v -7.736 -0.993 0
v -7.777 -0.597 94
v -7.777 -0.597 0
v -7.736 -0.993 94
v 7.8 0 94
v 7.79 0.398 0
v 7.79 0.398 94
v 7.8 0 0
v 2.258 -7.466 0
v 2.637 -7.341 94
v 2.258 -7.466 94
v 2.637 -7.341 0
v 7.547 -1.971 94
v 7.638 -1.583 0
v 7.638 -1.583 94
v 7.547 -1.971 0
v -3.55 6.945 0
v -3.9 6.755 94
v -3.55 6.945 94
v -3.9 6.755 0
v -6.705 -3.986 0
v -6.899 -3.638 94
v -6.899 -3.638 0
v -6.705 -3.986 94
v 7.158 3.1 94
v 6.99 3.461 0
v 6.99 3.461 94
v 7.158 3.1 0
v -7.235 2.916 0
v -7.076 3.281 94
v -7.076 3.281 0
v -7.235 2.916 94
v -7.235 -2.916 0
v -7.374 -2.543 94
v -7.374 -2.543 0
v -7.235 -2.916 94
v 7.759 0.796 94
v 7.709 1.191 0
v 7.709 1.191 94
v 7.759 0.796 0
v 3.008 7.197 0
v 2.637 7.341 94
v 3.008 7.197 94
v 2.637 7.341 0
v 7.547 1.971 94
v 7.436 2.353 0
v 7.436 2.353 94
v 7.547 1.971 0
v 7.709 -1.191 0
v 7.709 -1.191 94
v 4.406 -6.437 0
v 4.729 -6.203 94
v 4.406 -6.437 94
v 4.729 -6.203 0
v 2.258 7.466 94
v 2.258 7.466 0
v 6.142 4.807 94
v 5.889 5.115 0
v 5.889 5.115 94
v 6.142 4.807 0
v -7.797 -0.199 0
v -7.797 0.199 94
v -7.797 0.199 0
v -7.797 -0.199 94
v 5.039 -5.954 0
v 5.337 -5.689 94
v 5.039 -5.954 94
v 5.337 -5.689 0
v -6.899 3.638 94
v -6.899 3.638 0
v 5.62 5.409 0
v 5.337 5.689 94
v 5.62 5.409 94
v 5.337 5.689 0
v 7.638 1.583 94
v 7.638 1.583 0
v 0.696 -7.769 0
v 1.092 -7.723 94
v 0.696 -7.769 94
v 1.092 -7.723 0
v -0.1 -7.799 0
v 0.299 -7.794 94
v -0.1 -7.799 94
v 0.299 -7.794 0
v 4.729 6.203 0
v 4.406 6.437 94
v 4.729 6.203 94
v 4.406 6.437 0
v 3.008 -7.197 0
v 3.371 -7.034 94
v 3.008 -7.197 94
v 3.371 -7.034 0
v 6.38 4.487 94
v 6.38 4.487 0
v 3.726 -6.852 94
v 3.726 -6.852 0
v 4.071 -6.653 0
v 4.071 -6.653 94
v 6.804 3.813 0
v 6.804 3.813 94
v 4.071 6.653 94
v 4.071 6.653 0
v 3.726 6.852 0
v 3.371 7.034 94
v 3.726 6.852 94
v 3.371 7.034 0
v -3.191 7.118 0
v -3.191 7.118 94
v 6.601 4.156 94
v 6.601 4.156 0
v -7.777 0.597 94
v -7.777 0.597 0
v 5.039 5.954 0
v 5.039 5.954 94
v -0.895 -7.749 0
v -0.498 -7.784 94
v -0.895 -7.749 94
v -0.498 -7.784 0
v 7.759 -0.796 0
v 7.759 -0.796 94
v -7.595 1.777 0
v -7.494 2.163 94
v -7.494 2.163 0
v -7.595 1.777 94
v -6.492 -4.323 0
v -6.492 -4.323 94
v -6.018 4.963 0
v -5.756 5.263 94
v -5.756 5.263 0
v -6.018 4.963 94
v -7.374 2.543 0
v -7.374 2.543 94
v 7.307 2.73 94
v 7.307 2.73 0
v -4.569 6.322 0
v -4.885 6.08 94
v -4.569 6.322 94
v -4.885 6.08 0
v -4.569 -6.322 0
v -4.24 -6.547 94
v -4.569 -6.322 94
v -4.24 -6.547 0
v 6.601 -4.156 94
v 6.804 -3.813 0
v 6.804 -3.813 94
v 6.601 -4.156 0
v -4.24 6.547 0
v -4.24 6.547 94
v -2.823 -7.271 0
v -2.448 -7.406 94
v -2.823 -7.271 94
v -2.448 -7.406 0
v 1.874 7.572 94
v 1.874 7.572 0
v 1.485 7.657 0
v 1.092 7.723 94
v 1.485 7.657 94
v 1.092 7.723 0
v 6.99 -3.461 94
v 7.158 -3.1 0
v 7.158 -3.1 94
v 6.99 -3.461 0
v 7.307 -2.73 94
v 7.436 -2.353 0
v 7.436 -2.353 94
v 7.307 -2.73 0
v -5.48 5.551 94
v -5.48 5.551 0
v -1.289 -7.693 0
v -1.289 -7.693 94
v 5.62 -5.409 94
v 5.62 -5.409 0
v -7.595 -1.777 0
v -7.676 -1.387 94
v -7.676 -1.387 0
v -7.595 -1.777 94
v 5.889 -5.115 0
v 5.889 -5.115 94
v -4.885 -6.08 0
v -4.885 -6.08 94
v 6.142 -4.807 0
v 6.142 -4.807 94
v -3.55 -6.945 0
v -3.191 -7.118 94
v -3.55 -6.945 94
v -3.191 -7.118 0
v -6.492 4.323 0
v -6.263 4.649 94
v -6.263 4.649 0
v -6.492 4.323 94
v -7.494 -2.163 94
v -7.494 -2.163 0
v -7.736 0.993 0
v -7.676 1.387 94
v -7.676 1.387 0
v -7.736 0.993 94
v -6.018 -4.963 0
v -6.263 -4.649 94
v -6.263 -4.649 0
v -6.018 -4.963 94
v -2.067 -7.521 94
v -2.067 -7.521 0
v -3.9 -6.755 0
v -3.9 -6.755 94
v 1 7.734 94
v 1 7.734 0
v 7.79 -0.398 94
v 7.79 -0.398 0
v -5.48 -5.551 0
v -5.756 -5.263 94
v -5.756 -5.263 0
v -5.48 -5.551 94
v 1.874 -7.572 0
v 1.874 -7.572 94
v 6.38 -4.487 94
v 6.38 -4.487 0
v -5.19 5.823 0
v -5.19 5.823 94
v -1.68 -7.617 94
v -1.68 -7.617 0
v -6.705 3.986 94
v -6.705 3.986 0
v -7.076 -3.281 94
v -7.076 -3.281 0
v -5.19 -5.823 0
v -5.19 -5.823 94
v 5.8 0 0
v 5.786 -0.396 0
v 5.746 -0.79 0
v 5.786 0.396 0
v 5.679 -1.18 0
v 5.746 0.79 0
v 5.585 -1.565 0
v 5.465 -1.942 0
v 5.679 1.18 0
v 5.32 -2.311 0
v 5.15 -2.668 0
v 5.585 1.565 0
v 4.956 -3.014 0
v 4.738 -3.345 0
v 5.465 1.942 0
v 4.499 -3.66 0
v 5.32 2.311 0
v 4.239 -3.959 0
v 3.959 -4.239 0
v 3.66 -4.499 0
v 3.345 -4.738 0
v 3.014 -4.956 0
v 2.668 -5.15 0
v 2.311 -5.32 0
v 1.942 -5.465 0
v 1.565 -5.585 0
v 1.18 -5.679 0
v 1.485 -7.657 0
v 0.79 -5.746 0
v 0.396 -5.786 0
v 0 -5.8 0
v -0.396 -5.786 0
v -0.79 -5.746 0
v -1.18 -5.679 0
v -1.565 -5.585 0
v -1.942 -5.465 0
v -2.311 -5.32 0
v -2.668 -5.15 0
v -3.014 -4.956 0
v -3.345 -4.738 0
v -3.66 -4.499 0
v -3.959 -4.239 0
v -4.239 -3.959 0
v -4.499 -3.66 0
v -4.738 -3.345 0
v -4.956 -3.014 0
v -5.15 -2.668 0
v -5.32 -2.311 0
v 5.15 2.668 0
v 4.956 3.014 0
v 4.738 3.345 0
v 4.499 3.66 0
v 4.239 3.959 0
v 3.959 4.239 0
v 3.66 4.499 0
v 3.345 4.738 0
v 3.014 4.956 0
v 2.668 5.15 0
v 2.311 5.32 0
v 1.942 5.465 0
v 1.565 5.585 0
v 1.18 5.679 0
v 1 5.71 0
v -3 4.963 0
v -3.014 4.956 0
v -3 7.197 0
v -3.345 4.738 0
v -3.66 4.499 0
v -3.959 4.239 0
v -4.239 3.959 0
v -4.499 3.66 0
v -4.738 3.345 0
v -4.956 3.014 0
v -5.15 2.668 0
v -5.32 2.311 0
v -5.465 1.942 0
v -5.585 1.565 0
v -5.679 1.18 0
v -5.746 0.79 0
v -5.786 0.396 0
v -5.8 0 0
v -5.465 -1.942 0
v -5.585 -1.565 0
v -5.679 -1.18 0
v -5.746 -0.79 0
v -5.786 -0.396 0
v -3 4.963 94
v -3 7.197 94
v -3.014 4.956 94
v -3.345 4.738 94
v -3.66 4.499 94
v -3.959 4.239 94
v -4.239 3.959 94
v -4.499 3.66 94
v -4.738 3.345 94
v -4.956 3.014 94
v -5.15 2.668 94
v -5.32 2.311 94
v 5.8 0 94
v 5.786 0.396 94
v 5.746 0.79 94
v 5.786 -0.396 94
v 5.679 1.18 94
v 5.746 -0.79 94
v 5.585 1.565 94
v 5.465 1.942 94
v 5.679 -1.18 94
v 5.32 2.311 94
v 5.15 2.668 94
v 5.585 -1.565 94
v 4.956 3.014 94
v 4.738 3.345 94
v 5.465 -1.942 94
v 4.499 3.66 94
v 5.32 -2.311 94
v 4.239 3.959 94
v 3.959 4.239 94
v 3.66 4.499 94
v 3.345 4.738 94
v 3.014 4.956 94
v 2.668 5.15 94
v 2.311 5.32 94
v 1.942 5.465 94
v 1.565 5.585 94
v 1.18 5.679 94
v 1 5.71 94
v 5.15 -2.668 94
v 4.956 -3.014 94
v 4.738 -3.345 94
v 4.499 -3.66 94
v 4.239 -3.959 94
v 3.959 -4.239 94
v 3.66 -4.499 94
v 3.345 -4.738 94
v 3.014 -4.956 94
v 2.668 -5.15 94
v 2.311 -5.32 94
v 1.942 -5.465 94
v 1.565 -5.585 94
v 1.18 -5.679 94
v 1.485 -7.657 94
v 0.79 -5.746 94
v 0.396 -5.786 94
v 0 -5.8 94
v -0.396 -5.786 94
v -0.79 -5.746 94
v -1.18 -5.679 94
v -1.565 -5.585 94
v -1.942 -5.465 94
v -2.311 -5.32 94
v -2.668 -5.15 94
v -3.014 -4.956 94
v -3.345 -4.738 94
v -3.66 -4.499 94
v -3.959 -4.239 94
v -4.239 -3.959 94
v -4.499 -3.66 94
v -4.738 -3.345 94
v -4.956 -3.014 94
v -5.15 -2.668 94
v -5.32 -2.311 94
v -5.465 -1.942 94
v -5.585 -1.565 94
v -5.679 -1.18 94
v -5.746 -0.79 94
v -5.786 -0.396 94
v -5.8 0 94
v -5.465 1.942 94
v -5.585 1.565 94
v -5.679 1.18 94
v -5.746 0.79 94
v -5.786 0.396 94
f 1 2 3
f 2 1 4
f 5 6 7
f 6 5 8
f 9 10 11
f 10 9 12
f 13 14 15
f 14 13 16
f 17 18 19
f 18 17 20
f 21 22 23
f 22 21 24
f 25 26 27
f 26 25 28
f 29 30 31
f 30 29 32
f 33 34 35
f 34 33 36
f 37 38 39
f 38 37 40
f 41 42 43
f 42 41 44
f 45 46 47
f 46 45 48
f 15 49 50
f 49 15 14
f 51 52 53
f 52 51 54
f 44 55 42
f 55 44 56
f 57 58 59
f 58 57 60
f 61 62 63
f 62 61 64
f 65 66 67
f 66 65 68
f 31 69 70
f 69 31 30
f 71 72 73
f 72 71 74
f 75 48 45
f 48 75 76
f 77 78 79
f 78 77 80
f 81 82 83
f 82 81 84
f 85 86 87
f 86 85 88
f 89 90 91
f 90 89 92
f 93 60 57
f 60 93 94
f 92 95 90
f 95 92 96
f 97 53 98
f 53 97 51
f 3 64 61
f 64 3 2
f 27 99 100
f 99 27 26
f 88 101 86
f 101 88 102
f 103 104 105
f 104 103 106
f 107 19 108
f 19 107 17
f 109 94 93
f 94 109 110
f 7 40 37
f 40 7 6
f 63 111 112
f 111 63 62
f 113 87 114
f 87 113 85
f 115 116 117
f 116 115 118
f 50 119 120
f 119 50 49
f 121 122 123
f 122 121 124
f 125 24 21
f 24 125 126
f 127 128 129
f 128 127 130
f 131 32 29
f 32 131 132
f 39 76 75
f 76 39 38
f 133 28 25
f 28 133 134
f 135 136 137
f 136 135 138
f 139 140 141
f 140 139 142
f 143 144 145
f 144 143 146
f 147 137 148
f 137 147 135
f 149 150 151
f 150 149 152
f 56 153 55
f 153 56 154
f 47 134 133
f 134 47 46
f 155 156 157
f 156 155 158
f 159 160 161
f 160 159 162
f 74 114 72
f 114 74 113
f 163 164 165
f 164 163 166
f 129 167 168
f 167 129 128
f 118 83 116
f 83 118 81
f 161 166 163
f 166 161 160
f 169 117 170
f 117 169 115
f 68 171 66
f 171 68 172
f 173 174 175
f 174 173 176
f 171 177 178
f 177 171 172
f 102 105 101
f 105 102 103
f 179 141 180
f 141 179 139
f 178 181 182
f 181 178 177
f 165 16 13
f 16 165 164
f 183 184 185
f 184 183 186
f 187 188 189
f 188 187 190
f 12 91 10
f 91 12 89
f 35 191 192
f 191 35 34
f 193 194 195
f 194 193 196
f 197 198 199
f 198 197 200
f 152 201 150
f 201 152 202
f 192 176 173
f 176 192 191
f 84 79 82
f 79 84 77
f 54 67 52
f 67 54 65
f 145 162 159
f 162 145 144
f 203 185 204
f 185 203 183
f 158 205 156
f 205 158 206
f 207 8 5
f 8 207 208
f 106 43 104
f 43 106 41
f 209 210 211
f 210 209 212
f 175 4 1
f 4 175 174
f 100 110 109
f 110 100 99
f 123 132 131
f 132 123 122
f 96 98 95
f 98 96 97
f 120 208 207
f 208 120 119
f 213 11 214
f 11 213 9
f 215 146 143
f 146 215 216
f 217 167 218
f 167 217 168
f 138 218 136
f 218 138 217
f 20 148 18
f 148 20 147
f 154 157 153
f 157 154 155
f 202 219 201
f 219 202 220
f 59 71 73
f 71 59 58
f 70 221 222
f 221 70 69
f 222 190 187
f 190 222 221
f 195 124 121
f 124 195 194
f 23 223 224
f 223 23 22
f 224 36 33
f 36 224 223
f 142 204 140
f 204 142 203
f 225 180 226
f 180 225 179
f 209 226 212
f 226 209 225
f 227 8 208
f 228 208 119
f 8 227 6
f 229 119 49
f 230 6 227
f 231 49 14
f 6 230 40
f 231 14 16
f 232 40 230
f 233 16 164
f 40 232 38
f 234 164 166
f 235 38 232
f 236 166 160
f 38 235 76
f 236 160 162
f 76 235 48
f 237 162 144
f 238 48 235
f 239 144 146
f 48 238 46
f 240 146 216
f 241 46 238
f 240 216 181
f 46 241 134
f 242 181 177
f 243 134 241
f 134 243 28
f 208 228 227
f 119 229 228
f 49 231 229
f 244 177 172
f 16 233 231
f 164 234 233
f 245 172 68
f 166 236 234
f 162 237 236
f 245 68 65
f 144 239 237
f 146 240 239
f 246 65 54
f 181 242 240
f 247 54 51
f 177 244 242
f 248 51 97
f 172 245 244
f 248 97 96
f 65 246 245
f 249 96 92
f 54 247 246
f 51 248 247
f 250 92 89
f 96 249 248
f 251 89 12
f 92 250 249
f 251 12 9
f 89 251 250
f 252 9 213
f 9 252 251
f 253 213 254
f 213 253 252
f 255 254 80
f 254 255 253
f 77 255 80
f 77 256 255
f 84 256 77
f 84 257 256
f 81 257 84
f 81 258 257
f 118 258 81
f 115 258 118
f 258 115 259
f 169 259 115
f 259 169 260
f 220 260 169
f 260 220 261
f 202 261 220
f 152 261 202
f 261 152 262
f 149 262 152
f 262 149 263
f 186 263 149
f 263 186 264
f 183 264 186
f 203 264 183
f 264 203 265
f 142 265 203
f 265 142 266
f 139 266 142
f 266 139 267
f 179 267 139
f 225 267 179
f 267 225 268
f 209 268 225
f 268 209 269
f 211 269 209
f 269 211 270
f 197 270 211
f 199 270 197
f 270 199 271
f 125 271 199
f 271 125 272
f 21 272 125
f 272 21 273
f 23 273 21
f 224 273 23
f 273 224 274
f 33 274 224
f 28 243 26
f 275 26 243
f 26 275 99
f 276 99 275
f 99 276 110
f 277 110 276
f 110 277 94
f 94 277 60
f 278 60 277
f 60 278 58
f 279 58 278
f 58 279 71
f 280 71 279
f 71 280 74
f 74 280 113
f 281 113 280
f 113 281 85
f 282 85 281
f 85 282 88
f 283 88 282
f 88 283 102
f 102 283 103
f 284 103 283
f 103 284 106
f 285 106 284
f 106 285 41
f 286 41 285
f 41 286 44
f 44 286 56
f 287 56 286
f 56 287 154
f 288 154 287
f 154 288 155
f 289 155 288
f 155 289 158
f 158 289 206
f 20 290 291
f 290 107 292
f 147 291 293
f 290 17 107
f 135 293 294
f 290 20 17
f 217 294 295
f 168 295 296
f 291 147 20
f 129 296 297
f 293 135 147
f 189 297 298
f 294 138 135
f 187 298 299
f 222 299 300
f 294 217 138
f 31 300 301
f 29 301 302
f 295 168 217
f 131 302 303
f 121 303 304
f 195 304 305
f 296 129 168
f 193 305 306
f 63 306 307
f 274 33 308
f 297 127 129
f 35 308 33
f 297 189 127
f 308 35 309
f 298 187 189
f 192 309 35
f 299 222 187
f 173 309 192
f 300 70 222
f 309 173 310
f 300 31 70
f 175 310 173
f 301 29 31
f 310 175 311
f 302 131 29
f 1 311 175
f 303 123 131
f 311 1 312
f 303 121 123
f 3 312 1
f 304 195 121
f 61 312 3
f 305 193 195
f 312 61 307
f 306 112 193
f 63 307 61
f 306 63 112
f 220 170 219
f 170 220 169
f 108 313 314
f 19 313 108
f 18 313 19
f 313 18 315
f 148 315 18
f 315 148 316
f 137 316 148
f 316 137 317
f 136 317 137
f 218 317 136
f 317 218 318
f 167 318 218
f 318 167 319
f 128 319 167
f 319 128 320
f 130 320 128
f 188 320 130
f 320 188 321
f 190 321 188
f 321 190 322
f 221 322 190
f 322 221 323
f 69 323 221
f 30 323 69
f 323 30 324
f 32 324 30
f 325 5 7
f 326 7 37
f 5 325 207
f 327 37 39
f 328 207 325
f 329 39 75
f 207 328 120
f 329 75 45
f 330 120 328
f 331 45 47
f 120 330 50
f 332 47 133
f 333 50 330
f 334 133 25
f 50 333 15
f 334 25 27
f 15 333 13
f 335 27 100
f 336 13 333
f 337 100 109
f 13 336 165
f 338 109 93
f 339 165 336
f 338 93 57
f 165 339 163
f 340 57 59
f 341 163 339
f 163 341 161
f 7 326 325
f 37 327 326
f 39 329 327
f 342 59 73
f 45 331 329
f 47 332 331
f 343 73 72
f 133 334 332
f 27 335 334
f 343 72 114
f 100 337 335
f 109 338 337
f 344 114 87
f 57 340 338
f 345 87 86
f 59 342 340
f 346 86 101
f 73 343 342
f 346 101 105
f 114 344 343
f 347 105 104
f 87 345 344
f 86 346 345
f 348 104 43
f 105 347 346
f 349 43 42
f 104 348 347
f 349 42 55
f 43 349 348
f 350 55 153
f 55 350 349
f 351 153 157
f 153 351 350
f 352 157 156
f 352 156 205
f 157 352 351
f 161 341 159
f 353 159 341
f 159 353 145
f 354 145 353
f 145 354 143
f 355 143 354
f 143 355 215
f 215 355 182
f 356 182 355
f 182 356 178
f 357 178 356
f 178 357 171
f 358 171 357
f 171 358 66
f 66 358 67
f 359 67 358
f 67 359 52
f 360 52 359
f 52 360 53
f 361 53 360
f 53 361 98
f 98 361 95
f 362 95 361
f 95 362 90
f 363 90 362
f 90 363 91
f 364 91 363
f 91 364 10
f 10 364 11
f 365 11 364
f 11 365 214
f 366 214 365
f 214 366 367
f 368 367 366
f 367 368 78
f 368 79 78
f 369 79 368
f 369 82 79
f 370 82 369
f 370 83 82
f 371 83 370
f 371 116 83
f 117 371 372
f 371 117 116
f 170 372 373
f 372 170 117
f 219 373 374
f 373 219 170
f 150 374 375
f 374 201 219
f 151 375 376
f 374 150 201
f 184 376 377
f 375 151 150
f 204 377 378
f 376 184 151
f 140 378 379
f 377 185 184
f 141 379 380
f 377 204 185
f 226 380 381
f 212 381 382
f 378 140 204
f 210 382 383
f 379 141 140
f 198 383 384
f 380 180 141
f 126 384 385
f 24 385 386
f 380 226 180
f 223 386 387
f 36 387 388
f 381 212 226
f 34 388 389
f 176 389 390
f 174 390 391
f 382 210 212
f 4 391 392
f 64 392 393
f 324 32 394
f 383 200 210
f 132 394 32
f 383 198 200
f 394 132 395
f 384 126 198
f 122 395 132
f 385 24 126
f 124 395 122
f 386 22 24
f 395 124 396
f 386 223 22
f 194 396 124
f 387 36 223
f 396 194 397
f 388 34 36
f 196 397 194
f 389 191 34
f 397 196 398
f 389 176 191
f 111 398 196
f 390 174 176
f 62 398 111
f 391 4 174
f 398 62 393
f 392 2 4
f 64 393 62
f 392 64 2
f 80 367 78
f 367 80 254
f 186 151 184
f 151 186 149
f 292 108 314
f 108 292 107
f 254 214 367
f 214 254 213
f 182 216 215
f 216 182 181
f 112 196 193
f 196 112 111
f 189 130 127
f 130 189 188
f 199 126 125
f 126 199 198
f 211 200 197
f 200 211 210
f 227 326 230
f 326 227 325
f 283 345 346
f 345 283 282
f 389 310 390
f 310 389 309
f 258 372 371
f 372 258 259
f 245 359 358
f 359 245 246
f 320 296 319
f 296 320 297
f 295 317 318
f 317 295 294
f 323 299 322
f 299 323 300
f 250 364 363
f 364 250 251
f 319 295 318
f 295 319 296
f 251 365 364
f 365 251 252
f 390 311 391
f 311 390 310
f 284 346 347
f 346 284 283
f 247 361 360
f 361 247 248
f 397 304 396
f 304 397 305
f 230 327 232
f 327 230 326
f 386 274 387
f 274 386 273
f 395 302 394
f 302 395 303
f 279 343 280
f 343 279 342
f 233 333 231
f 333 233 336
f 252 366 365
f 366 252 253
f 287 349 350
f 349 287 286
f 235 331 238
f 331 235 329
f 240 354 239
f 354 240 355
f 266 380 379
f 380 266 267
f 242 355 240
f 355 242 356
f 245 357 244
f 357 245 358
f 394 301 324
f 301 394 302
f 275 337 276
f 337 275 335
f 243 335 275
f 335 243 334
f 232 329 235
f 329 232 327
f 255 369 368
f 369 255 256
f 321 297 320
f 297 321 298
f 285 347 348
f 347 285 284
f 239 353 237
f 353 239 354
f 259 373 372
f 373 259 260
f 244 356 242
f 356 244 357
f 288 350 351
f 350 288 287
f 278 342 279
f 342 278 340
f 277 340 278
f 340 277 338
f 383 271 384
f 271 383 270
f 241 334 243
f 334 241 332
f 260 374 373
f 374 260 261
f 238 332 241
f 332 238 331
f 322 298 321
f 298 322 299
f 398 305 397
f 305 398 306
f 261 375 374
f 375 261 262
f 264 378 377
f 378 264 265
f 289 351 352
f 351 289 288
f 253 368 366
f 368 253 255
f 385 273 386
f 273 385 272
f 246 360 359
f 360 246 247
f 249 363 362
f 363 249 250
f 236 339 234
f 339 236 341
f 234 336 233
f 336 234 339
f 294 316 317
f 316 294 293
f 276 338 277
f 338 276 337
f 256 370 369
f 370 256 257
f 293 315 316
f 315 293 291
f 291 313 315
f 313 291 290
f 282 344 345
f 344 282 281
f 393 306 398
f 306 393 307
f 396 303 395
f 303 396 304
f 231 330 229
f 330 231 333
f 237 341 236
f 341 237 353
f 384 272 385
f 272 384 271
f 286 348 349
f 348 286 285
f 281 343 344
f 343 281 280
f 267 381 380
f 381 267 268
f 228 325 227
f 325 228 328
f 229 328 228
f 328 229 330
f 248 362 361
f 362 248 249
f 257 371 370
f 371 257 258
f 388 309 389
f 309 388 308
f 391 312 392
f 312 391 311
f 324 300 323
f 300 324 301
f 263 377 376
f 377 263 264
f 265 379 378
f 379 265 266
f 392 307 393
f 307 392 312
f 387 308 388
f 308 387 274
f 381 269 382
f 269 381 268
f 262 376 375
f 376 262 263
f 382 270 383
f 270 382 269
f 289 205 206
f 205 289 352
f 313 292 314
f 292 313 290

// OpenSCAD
$fa = 1;
$fs = 0.4;

difference() {
    cylinder(d=15.6, h=94);
        cylinder(d=11.6, h=95);
    translate([-3, 4, 0])
        cube([4, 4, 160]);
}
